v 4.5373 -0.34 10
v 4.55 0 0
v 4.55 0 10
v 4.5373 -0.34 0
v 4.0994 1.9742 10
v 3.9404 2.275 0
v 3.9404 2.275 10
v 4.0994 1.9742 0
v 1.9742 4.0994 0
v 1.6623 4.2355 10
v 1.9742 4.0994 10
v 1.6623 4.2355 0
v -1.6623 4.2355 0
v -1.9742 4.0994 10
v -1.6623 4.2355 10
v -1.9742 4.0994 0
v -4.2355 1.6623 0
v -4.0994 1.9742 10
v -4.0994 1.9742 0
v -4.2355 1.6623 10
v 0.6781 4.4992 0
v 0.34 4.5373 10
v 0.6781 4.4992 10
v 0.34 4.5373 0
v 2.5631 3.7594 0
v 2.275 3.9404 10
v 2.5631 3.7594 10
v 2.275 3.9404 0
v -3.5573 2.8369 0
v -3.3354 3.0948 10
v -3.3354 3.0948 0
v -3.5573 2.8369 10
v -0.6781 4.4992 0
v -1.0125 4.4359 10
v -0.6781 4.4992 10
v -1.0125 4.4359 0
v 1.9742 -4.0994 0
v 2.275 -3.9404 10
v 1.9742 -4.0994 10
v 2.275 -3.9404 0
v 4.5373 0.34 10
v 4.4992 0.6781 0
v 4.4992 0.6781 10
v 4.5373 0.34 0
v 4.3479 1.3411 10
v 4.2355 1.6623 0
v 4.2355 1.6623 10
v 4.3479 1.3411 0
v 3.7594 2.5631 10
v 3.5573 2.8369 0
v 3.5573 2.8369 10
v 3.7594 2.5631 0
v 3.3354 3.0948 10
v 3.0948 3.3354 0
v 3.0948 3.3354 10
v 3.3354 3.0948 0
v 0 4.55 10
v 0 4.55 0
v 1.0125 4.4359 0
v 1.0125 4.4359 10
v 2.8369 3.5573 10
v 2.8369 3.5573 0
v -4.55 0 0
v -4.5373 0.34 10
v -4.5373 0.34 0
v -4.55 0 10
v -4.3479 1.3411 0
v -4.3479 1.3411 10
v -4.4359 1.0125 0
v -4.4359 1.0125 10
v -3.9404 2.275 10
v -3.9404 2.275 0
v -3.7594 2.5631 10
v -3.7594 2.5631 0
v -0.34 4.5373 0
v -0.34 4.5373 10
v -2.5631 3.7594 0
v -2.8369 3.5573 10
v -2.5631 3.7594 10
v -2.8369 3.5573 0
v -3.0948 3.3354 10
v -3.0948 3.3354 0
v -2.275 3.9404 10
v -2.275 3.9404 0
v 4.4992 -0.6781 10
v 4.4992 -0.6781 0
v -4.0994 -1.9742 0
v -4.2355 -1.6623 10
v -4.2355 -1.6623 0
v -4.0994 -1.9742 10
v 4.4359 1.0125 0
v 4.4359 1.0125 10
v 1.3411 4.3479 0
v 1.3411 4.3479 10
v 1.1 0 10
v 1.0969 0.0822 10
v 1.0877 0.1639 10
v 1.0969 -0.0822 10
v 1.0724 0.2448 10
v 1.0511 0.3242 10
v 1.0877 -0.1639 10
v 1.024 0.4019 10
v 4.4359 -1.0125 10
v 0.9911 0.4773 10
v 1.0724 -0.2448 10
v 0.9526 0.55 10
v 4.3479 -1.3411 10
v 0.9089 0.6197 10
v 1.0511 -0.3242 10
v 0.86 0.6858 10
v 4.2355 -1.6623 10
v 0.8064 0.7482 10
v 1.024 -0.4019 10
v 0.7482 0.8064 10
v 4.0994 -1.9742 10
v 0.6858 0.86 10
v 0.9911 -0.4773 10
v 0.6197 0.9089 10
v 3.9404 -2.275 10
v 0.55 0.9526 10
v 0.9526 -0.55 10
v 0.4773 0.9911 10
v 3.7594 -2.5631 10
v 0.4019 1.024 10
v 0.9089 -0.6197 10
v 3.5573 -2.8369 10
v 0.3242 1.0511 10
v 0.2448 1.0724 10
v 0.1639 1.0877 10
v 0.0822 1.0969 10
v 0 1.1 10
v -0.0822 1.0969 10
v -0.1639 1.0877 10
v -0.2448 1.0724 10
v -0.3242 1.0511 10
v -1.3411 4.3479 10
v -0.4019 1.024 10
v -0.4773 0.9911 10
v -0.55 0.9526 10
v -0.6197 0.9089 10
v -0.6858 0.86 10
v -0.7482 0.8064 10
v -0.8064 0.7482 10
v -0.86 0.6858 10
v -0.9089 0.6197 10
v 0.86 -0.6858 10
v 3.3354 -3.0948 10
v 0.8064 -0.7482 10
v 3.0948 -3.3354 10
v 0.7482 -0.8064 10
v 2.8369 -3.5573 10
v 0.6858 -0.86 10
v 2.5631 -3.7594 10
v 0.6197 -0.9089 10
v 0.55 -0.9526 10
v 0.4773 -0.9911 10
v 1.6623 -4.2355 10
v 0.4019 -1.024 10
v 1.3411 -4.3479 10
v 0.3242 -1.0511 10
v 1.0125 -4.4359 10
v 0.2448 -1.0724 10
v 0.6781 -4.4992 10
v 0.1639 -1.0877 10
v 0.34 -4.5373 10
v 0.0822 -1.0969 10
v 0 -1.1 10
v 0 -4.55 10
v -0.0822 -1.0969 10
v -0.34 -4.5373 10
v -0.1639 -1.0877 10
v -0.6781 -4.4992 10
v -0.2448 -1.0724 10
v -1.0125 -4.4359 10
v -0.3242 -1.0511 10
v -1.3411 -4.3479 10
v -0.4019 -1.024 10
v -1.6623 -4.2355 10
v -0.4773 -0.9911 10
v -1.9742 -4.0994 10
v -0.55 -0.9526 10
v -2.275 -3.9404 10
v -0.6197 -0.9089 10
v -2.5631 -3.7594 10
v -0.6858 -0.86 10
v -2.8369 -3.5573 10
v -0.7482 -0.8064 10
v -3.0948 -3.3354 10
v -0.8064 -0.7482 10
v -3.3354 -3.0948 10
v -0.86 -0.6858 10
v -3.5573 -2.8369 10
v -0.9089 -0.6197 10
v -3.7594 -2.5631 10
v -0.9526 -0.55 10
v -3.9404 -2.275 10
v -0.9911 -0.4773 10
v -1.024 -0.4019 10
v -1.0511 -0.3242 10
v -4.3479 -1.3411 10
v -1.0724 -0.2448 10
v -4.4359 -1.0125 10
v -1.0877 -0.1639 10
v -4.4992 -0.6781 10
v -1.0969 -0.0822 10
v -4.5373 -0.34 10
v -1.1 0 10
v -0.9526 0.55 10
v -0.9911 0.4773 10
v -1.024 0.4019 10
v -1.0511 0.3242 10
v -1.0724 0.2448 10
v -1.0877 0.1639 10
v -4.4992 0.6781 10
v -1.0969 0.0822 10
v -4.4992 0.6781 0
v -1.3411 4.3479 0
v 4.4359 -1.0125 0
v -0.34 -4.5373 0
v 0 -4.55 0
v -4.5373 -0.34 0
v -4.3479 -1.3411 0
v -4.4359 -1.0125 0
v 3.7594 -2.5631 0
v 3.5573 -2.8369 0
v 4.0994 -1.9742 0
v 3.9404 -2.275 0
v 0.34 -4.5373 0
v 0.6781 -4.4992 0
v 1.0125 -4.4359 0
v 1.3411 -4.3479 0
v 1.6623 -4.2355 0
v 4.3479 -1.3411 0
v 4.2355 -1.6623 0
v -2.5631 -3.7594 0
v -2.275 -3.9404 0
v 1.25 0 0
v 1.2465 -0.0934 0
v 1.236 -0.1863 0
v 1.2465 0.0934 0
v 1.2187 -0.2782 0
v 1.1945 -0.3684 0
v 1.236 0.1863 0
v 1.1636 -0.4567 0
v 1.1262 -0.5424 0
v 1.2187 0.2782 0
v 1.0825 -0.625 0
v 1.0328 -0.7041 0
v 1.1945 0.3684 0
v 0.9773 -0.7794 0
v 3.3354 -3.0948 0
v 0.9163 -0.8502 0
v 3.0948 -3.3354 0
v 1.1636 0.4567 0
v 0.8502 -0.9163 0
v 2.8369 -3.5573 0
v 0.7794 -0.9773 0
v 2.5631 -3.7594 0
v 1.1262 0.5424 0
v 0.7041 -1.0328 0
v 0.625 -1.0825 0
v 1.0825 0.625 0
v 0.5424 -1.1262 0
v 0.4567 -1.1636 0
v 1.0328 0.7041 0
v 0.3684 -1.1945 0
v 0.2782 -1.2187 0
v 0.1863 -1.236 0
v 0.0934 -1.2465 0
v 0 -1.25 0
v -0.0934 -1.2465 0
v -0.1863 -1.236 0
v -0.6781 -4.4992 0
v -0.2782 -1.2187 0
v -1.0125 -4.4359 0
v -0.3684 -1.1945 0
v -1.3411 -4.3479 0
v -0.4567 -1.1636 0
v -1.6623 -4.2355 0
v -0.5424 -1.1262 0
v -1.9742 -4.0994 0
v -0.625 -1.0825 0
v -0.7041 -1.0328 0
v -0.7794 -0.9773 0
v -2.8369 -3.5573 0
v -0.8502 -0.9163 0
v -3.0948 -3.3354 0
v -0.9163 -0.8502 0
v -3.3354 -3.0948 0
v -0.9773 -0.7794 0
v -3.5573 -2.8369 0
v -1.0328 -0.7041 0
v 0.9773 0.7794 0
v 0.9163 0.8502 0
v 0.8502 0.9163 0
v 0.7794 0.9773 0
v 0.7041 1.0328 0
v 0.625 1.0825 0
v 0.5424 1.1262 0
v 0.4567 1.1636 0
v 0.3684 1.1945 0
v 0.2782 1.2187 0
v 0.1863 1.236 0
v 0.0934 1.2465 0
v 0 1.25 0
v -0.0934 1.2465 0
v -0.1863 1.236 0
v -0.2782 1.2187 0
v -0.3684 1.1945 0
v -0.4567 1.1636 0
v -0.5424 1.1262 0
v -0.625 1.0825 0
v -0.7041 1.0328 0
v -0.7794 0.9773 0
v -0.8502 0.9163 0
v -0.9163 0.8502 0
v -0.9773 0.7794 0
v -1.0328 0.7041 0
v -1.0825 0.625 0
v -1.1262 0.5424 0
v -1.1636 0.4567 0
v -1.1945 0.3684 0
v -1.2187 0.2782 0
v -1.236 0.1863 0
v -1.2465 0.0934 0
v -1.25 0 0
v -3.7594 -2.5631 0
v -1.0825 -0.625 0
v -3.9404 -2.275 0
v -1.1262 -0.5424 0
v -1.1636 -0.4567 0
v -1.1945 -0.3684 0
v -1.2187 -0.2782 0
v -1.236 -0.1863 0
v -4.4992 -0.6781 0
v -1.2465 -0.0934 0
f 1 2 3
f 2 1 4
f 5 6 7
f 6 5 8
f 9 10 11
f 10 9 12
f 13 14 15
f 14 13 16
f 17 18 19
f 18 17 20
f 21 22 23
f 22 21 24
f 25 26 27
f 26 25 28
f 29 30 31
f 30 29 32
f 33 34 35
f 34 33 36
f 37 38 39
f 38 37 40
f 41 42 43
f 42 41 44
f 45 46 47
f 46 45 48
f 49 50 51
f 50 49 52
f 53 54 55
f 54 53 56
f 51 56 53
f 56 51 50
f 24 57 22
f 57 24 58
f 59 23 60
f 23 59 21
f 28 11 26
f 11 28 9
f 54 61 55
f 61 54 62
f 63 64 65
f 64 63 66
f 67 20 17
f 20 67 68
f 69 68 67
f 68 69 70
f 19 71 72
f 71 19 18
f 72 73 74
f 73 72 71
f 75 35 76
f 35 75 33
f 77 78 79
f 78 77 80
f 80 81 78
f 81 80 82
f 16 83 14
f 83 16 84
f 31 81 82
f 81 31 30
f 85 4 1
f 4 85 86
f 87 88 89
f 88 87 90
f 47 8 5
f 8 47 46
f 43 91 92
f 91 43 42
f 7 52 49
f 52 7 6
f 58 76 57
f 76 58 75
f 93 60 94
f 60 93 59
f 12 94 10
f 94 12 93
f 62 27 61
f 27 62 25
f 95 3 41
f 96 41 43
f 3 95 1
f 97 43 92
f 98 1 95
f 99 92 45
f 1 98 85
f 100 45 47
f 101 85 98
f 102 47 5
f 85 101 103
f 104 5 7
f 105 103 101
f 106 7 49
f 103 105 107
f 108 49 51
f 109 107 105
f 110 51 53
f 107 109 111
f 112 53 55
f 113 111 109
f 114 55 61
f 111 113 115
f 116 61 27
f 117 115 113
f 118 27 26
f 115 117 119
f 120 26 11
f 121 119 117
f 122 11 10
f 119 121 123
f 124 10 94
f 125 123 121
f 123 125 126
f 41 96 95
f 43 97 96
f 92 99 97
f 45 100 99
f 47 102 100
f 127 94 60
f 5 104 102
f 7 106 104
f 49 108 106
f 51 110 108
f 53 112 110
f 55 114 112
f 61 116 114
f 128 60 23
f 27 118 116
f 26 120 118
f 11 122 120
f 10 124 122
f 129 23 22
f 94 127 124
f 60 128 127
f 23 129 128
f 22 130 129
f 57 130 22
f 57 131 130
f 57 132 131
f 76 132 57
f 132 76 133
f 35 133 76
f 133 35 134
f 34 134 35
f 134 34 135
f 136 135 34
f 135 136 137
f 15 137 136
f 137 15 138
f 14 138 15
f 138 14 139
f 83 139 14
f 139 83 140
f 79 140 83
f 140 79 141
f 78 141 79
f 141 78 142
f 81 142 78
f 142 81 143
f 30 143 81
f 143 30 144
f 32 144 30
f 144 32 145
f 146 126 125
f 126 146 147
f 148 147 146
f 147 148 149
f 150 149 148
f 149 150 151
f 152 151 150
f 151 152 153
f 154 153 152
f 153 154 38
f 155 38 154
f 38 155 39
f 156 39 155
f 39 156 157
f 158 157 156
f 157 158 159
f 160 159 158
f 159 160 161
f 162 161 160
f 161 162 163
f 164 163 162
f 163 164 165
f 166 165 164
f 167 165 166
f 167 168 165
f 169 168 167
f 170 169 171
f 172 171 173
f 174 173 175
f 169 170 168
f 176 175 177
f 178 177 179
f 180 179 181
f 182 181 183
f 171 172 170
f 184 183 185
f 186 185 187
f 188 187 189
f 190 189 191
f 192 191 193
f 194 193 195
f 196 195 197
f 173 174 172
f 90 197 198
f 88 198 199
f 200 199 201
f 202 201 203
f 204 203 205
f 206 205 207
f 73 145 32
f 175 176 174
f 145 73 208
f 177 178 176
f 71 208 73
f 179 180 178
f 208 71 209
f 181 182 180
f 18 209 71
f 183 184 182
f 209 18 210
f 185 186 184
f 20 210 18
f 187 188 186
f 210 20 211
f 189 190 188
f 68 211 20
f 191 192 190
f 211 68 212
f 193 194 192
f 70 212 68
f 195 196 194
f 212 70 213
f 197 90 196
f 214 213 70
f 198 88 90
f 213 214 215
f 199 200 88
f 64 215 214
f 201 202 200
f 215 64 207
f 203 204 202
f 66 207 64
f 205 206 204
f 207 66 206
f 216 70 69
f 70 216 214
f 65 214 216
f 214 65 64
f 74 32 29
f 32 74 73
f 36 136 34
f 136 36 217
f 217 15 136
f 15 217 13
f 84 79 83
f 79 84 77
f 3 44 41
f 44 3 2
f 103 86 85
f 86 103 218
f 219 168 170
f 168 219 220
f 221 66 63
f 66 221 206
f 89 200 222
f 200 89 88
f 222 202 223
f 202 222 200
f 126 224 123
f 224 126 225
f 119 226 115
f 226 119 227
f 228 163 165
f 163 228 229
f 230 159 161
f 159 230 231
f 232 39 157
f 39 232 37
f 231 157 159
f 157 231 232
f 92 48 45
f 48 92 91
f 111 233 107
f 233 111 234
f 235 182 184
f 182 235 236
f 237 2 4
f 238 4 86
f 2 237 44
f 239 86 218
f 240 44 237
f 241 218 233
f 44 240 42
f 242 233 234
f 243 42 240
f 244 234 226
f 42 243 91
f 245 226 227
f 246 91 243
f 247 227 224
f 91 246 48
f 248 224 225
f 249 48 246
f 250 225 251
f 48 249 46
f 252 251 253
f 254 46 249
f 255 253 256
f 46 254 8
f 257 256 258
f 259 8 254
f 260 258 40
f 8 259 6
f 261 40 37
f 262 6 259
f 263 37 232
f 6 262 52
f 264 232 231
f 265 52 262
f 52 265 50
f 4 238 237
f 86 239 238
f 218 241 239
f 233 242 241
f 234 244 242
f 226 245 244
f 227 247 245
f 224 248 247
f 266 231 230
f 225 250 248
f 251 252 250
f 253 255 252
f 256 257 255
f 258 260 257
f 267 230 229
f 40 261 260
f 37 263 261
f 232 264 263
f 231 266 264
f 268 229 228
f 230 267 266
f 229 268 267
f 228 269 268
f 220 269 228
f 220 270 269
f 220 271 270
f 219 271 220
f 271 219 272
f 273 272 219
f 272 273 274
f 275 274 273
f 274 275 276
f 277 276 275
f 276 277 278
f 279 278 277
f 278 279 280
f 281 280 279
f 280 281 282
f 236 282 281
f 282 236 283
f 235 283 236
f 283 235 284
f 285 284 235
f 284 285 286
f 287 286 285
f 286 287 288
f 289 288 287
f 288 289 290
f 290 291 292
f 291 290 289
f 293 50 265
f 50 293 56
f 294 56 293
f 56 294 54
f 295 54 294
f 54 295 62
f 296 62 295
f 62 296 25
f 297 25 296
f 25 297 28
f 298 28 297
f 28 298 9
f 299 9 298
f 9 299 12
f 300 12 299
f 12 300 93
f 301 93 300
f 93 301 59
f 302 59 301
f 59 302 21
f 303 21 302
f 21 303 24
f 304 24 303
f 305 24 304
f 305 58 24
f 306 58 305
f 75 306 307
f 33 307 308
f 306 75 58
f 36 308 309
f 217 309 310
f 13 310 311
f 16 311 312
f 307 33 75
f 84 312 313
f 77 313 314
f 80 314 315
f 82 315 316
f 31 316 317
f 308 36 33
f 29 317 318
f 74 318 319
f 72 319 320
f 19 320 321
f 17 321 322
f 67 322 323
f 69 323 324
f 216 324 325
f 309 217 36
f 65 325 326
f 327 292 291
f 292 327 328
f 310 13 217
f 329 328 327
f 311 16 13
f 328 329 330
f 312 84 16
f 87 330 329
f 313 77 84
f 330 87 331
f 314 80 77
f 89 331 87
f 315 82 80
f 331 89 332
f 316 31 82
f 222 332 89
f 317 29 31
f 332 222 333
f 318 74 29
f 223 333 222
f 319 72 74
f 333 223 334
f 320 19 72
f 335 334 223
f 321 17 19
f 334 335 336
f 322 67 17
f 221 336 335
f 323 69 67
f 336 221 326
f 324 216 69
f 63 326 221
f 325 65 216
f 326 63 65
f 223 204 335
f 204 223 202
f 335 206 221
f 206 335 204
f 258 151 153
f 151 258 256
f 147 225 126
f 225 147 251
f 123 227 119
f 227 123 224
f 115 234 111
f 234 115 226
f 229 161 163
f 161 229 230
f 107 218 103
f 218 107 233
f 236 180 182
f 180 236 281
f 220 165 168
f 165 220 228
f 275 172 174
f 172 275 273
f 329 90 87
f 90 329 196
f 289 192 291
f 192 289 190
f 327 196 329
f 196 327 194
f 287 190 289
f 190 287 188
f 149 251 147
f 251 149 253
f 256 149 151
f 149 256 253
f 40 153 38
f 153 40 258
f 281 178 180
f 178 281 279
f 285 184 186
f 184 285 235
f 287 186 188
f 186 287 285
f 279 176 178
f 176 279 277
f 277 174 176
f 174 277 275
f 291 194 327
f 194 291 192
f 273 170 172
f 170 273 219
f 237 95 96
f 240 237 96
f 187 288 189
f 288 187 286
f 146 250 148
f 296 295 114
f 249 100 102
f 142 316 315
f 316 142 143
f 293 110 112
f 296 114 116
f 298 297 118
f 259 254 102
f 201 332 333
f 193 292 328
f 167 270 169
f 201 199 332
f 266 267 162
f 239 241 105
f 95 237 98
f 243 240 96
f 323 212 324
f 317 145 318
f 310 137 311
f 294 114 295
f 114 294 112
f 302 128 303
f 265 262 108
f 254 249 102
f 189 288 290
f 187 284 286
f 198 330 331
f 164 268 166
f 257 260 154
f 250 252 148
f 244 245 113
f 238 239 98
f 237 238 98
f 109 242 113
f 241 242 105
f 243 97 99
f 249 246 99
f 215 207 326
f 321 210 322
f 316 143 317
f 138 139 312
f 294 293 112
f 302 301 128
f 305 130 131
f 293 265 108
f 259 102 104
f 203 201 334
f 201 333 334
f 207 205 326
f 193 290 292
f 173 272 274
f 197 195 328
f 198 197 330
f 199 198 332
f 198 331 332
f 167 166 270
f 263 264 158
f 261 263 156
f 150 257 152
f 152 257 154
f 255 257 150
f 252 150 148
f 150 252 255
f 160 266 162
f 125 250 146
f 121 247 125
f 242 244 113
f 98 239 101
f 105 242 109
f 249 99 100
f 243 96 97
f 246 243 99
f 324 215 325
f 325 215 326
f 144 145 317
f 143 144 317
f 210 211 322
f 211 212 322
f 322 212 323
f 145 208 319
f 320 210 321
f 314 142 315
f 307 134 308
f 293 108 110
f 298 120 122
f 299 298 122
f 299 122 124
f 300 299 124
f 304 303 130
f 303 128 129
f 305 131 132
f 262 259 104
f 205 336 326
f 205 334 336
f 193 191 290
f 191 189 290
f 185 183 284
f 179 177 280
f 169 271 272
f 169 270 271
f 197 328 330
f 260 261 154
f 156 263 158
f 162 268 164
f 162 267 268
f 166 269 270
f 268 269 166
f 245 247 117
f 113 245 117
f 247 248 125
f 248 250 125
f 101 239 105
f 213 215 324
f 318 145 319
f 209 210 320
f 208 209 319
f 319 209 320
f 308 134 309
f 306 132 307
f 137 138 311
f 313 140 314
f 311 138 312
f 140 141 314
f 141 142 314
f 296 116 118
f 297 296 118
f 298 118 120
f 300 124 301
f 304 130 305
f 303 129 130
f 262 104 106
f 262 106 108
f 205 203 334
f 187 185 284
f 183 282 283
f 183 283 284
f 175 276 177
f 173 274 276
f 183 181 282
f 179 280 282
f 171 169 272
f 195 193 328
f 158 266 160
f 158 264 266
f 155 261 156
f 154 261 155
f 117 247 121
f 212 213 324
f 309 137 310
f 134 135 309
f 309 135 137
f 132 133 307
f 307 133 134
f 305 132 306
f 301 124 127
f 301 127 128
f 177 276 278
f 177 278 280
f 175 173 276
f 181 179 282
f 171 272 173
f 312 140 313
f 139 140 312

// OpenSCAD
$fn=21*4;

d=40;
hz=10;

difference()
{
    #cylinder(d=2.5+2*2*0.4+5,h=10);    
    #cylinder(d1=2.5,d2=2.2,h=10);    
    
    translate([0,0,-100/2])
    cube([100,100,100],center=true);
}
